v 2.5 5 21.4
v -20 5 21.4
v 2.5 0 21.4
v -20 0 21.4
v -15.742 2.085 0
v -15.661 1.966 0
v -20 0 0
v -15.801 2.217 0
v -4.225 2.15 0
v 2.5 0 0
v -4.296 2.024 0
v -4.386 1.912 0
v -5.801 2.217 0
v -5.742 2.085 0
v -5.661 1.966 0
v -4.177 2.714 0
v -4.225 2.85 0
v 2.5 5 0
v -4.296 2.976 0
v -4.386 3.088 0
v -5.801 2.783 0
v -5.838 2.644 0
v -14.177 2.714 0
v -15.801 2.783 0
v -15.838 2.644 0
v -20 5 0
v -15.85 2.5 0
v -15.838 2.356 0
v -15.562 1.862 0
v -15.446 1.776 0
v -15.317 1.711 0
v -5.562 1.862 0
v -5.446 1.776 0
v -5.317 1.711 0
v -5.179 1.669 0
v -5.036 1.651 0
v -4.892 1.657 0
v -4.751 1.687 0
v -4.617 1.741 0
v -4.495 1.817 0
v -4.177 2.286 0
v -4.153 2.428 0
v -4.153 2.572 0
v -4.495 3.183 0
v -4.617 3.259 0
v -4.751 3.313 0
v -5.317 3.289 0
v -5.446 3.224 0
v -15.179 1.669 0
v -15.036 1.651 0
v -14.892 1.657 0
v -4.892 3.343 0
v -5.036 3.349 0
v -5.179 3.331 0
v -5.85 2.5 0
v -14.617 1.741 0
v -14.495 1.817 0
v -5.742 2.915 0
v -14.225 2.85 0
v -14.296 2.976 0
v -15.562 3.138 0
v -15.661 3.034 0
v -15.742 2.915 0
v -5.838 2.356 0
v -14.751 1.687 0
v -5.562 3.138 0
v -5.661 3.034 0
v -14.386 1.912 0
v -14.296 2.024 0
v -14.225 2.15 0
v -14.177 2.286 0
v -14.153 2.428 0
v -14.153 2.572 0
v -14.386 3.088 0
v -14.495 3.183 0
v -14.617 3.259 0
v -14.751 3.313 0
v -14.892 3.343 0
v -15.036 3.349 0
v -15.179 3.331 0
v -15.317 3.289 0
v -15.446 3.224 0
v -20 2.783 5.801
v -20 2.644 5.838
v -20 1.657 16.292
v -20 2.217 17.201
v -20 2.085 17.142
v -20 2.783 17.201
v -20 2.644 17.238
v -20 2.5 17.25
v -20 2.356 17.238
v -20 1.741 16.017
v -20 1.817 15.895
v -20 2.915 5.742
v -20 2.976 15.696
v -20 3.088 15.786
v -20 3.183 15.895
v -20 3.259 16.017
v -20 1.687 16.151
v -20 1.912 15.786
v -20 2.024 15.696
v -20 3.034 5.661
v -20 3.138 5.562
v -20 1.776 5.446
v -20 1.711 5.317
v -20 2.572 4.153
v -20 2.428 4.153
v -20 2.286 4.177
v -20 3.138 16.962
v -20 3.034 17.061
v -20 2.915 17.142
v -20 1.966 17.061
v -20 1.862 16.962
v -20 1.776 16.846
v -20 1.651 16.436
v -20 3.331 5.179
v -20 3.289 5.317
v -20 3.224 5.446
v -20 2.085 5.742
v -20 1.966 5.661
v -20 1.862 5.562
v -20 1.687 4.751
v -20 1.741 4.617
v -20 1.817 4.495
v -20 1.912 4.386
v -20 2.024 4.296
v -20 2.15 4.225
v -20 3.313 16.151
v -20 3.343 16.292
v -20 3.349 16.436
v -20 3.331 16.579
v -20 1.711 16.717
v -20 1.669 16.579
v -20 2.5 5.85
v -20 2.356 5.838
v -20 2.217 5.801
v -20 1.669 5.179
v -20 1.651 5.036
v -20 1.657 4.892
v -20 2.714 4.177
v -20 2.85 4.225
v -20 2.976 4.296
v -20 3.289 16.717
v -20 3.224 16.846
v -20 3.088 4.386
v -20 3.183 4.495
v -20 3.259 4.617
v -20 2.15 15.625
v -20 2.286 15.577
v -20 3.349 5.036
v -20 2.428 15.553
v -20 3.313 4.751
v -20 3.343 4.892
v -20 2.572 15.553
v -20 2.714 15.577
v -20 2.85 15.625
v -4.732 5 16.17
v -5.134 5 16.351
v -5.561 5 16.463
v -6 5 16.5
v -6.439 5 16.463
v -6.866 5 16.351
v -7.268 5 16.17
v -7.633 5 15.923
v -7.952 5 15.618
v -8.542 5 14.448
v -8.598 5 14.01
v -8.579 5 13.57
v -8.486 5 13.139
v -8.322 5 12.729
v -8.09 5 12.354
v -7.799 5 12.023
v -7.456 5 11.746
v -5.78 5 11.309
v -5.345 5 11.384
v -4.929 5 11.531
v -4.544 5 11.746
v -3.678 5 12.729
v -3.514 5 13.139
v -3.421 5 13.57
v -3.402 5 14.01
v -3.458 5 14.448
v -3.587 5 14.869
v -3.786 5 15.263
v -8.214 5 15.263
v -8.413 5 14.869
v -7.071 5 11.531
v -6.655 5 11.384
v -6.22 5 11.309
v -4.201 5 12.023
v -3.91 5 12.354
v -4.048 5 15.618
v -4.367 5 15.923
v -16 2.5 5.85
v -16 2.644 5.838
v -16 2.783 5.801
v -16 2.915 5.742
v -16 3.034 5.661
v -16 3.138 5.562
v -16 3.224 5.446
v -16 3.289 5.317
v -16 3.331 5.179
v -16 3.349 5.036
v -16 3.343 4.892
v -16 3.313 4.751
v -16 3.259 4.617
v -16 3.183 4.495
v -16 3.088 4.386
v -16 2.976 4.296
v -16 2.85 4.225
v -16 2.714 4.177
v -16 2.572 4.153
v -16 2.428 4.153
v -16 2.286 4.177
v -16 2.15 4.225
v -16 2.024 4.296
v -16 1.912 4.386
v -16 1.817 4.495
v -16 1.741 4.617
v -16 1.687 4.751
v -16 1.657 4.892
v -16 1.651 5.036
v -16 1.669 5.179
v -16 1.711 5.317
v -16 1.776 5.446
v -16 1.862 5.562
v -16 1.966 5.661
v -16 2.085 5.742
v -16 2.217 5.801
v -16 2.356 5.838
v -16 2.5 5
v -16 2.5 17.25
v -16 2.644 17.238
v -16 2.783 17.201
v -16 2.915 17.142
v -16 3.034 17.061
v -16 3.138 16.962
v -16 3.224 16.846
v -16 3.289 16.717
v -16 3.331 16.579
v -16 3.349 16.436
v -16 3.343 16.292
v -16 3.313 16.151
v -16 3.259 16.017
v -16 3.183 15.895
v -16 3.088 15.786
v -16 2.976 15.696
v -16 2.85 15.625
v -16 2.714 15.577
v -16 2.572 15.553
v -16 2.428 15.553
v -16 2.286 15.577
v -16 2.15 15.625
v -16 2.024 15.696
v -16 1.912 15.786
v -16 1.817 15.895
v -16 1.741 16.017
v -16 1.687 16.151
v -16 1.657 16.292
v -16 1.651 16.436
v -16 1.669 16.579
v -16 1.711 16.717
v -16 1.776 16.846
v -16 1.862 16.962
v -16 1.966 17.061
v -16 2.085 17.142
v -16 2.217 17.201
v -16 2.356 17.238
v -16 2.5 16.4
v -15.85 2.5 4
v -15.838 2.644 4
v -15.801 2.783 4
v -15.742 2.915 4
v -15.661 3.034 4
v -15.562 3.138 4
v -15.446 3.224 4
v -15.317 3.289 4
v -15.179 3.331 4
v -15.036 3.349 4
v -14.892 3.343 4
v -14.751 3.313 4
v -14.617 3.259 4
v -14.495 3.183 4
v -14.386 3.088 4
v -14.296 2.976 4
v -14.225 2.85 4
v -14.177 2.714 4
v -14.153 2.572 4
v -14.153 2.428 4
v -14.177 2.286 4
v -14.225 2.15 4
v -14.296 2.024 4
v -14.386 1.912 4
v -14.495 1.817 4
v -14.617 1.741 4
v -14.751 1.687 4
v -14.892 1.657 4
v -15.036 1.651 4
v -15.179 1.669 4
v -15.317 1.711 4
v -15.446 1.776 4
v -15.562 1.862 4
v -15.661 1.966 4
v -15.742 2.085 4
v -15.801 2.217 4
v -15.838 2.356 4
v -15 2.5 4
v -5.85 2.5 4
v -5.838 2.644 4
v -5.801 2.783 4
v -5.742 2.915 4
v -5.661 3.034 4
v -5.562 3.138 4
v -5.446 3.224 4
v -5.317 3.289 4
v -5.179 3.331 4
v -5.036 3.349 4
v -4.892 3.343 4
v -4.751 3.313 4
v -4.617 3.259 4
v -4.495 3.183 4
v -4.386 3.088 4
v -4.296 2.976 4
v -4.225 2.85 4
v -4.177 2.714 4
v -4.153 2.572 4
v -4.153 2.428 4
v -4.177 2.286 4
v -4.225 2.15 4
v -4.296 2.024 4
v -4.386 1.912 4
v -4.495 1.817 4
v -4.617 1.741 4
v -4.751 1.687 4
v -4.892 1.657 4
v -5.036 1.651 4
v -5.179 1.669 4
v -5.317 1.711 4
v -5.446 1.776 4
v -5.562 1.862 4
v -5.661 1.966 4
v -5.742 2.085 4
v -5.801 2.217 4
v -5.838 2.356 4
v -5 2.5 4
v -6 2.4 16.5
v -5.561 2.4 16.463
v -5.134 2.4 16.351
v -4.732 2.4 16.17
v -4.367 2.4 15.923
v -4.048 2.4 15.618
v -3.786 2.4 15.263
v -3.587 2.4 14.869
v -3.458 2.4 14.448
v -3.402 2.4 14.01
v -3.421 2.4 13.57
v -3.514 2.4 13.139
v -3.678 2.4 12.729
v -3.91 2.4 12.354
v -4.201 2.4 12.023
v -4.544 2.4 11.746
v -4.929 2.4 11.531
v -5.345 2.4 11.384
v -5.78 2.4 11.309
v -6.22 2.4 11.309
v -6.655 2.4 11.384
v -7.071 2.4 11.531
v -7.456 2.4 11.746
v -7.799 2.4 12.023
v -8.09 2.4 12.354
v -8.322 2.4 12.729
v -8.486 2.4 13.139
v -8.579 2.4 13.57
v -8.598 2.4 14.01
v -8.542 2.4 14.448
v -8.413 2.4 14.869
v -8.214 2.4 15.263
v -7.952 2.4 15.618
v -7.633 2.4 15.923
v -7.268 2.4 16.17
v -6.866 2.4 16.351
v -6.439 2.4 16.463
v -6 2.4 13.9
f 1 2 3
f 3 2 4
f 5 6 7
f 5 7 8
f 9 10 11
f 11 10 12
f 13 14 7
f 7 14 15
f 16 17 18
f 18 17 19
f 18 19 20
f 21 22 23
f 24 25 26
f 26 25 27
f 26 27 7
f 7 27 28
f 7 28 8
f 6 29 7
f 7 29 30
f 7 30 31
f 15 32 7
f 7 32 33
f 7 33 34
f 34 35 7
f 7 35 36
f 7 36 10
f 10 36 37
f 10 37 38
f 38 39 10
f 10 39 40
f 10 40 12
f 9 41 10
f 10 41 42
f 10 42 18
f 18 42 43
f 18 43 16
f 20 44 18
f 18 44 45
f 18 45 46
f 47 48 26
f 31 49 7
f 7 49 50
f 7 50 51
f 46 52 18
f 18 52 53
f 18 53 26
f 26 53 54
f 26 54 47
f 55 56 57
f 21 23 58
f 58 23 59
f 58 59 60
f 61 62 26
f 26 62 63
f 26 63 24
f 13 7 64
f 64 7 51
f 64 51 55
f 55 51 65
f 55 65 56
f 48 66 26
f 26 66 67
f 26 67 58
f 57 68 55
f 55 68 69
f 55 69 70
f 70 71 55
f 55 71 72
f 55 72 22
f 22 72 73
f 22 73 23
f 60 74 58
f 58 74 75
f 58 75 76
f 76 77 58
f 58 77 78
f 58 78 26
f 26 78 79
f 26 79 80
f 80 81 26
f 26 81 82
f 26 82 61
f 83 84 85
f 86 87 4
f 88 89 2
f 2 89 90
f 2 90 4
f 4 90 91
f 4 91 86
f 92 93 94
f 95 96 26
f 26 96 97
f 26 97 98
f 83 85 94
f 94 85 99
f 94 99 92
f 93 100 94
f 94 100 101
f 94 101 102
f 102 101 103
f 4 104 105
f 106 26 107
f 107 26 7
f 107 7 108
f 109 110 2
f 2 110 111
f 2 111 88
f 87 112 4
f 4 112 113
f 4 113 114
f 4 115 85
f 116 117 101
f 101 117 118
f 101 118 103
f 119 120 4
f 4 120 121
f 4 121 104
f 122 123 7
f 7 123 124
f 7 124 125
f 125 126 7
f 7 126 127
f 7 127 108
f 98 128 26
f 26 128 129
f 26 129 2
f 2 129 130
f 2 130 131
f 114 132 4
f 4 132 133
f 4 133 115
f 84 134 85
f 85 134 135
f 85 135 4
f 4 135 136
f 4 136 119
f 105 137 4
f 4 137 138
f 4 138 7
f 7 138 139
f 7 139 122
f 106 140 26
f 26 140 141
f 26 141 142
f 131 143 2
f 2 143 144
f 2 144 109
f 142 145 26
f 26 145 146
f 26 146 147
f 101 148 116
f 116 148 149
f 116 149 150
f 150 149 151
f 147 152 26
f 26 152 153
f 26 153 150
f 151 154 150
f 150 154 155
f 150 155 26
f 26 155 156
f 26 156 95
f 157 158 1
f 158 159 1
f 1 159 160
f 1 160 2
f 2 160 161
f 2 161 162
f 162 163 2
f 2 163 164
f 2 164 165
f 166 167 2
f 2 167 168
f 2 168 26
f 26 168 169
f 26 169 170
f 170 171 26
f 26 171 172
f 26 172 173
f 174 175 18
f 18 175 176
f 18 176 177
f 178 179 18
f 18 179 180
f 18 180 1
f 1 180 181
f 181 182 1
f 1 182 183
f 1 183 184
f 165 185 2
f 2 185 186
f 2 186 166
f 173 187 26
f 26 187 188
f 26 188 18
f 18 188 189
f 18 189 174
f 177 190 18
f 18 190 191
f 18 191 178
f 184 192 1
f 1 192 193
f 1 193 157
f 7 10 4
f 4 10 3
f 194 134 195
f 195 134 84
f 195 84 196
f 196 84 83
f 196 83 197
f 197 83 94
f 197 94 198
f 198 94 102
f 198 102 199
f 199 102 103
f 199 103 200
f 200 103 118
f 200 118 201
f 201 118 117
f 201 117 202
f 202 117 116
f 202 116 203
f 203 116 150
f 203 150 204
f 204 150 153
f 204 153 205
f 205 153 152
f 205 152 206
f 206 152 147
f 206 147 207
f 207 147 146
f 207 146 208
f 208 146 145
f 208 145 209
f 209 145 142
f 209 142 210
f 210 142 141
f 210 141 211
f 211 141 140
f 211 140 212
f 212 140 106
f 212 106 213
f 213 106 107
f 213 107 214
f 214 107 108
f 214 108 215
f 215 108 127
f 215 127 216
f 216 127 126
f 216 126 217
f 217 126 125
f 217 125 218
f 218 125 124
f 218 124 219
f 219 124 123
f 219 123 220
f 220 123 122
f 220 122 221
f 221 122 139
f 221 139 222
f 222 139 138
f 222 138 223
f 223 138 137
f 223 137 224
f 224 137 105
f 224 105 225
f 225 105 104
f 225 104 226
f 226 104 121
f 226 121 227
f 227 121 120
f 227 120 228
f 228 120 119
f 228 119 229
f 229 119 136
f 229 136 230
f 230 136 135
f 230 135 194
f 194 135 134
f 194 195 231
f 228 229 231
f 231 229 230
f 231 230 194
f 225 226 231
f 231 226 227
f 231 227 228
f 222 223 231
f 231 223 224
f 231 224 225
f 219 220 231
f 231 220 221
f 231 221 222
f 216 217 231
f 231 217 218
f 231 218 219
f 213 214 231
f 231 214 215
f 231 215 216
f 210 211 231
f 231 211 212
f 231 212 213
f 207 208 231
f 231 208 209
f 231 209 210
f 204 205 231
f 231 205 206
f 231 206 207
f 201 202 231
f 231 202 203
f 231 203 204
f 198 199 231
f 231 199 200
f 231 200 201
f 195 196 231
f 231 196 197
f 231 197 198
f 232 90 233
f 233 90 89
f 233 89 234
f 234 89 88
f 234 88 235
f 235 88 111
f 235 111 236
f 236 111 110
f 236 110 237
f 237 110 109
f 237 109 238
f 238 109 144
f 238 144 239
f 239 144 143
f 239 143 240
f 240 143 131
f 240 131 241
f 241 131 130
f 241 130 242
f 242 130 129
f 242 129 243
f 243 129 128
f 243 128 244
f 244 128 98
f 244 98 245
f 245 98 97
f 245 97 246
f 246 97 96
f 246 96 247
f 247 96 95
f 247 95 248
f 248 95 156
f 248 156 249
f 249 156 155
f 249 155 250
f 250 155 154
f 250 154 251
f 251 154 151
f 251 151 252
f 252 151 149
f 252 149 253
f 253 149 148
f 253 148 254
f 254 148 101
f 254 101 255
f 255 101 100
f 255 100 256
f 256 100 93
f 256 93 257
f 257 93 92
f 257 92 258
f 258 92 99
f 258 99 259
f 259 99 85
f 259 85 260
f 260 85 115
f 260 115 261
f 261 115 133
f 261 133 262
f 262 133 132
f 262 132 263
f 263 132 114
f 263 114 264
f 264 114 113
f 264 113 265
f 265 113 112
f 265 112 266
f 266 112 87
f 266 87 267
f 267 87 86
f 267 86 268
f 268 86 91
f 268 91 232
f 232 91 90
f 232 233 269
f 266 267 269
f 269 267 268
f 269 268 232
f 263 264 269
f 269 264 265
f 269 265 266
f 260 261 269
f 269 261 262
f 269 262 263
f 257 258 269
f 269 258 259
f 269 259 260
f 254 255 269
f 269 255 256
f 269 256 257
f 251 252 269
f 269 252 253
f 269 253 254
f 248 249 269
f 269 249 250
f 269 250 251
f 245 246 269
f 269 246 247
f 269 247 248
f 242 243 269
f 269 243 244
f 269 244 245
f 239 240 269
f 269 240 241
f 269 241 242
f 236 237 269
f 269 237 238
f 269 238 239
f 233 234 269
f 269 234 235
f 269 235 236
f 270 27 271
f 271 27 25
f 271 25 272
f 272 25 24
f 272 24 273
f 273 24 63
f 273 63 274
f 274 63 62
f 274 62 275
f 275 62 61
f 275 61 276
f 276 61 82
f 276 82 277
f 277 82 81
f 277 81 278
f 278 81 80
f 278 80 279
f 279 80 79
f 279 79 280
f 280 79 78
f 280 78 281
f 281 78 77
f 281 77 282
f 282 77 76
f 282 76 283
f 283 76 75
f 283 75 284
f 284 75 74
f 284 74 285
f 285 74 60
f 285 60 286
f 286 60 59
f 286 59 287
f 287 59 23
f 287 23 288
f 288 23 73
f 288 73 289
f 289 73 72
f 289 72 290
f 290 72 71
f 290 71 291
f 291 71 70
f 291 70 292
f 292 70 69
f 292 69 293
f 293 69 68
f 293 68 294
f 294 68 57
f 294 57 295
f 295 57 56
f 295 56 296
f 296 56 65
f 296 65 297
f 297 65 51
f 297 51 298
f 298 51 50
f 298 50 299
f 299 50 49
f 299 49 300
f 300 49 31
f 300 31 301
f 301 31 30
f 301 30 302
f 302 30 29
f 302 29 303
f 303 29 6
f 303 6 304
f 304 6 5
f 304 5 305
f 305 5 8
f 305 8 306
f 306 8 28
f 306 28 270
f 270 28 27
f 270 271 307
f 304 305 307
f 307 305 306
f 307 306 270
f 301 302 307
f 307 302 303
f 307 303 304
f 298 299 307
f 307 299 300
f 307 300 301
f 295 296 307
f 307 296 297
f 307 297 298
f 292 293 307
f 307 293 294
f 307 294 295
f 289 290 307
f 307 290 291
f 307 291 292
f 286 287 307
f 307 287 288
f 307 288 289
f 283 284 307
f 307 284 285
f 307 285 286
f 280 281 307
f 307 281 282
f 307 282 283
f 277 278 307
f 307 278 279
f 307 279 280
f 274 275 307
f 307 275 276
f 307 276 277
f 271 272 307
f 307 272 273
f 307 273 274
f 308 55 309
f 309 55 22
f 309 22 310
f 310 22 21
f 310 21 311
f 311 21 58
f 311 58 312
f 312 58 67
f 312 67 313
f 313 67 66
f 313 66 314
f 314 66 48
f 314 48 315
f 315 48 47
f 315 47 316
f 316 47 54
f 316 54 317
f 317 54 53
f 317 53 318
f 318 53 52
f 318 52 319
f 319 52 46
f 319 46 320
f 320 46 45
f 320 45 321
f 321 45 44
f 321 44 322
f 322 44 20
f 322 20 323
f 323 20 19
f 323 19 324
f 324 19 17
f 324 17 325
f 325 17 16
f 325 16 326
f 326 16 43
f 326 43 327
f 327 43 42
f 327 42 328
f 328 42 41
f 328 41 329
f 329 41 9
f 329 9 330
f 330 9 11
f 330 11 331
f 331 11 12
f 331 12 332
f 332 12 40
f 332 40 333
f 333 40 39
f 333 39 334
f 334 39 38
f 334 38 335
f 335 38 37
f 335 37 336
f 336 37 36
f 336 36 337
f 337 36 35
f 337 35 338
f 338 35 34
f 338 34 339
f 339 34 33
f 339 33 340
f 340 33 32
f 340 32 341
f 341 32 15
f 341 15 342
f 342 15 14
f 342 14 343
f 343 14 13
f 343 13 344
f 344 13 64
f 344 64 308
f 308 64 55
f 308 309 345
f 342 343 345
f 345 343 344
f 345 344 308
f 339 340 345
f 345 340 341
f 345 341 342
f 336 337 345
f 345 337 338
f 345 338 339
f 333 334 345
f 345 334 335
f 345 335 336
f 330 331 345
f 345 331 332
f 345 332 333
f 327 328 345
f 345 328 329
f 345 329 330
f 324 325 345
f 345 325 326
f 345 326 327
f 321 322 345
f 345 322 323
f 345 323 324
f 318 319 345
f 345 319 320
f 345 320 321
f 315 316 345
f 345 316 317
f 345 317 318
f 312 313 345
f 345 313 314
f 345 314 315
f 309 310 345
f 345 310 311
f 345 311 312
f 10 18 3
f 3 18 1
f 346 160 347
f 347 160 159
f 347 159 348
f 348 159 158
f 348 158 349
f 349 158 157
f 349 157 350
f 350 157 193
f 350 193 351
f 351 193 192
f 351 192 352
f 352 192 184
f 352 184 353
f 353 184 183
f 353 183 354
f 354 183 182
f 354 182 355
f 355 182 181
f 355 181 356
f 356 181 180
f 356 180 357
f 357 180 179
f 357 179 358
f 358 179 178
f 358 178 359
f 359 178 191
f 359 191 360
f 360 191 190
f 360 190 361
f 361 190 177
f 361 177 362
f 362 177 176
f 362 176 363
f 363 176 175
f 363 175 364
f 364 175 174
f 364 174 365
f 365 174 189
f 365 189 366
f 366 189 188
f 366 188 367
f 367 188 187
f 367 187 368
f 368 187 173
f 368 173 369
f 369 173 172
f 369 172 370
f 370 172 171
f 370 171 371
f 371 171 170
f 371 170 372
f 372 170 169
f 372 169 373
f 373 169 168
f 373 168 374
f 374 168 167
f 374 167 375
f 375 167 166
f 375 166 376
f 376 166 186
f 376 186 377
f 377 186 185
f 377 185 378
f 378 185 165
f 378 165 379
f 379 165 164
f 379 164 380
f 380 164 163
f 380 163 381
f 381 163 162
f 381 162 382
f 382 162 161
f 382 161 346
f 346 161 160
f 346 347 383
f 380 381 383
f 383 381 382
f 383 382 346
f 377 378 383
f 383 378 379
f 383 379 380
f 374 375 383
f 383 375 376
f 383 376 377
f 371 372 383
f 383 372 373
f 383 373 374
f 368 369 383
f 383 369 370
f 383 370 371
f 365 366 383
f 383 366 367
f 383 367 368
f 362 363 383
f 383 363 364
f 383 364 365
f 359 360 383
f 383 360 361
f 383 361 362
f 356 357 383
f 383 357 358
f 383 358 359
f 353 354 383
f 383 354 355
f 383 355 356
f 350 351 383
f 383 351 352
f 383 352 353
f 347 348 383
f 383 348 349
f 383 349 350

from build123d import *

# Parameters (mm, degrees)
SKETCH_1_W          = 20
SKETCH_1_H          = 21.4
EXTRUDE_1_DEPTH     = 5
SKETCH_4_R          = 0.85
CUT_EXTRUDE_1_DEPTH = 4
SKETCH_5_R          = 0.85
CUT_EXTRUDE_2_DEPTH = 4
SKETCH_6_W          = 21.4
SKETCH_6_H          = 5
EXTRUDE_2_DEPTH     = 2.5
SKETCH_7_R          = 2.6
CUT_EXTRUDE_3_DEPTH = 2.6


with BuildPart() as part:
    # 草图1 → 凸台-拉伸1 (new body)
    with BuildSketch(Plane(origin=(0, 0, 0), x_dir=(1, 0, 0), z_dir=(0, 1, 0))):
        with Locations((-10, -10.7)):
            Rectangle(SKETCH_1_W, SKETCH_1_H)
    extrude(amount=EXTRUDE_1_DEPTH)

    # 草图4 → 切除-拉伸1 (cut)
    with BuildSketch(Plane.ZY.offset(20)):
        with Locations((16.4, 2.5)):
            Circle(SKETCH_4_R)
        with Locations((5, 2.5)):
            Circle(SKETCH_4_R)
    extrude(amount=-CUT_EXTRUDE_1_DEPTH, mode=Mode.SUBTRACT)

    # 草图5 → 切除-拉伸2 (cut)
    with BuildSketch(Plane(origin=(0, 0, 0), x_dir=(-1, 0, 0), z_dir=(0, 0, -1))):
        with Locations((15, 2.5)):
            Circle(SKETCH_5_R)
        with Locations((5, 2.5)):
            Circle(SKETCH_5_R)
    extrude(amount=-CUT_EXTRUDE_2_DEPTH, mode=Mode.SUBTRACT)

    # 草图6 → 凸台-拉伸2 (add)
    with BuildSketch(Plane(origin=(0, 0, 0), x_dir=(0, 0, -1), z_dir=(1, 0, 0))):
        with Locations((-10.7, 2.5)):
            Rectangle(SKETCH_6_W, SKETCH_6_H)
    extrude(amount=EXTRUDE_2_DEPTH)

    # 草图7 → 切除-拉伸3 (cut)
    with BuildSketch(Plane(origin=(0, 5, 0), x_dir=(1, 0, 0), z_dir=(0, 1, 0))):
        with Locations(Location((-6, -13.9, 0), (0, 0, 270))):
            Circle(SKETCH_7_R)
    extrude(amount=-CUT_EXTRUDE_3_DEPTH, mode=Mode.SUBTRACT)


solid = part.part
